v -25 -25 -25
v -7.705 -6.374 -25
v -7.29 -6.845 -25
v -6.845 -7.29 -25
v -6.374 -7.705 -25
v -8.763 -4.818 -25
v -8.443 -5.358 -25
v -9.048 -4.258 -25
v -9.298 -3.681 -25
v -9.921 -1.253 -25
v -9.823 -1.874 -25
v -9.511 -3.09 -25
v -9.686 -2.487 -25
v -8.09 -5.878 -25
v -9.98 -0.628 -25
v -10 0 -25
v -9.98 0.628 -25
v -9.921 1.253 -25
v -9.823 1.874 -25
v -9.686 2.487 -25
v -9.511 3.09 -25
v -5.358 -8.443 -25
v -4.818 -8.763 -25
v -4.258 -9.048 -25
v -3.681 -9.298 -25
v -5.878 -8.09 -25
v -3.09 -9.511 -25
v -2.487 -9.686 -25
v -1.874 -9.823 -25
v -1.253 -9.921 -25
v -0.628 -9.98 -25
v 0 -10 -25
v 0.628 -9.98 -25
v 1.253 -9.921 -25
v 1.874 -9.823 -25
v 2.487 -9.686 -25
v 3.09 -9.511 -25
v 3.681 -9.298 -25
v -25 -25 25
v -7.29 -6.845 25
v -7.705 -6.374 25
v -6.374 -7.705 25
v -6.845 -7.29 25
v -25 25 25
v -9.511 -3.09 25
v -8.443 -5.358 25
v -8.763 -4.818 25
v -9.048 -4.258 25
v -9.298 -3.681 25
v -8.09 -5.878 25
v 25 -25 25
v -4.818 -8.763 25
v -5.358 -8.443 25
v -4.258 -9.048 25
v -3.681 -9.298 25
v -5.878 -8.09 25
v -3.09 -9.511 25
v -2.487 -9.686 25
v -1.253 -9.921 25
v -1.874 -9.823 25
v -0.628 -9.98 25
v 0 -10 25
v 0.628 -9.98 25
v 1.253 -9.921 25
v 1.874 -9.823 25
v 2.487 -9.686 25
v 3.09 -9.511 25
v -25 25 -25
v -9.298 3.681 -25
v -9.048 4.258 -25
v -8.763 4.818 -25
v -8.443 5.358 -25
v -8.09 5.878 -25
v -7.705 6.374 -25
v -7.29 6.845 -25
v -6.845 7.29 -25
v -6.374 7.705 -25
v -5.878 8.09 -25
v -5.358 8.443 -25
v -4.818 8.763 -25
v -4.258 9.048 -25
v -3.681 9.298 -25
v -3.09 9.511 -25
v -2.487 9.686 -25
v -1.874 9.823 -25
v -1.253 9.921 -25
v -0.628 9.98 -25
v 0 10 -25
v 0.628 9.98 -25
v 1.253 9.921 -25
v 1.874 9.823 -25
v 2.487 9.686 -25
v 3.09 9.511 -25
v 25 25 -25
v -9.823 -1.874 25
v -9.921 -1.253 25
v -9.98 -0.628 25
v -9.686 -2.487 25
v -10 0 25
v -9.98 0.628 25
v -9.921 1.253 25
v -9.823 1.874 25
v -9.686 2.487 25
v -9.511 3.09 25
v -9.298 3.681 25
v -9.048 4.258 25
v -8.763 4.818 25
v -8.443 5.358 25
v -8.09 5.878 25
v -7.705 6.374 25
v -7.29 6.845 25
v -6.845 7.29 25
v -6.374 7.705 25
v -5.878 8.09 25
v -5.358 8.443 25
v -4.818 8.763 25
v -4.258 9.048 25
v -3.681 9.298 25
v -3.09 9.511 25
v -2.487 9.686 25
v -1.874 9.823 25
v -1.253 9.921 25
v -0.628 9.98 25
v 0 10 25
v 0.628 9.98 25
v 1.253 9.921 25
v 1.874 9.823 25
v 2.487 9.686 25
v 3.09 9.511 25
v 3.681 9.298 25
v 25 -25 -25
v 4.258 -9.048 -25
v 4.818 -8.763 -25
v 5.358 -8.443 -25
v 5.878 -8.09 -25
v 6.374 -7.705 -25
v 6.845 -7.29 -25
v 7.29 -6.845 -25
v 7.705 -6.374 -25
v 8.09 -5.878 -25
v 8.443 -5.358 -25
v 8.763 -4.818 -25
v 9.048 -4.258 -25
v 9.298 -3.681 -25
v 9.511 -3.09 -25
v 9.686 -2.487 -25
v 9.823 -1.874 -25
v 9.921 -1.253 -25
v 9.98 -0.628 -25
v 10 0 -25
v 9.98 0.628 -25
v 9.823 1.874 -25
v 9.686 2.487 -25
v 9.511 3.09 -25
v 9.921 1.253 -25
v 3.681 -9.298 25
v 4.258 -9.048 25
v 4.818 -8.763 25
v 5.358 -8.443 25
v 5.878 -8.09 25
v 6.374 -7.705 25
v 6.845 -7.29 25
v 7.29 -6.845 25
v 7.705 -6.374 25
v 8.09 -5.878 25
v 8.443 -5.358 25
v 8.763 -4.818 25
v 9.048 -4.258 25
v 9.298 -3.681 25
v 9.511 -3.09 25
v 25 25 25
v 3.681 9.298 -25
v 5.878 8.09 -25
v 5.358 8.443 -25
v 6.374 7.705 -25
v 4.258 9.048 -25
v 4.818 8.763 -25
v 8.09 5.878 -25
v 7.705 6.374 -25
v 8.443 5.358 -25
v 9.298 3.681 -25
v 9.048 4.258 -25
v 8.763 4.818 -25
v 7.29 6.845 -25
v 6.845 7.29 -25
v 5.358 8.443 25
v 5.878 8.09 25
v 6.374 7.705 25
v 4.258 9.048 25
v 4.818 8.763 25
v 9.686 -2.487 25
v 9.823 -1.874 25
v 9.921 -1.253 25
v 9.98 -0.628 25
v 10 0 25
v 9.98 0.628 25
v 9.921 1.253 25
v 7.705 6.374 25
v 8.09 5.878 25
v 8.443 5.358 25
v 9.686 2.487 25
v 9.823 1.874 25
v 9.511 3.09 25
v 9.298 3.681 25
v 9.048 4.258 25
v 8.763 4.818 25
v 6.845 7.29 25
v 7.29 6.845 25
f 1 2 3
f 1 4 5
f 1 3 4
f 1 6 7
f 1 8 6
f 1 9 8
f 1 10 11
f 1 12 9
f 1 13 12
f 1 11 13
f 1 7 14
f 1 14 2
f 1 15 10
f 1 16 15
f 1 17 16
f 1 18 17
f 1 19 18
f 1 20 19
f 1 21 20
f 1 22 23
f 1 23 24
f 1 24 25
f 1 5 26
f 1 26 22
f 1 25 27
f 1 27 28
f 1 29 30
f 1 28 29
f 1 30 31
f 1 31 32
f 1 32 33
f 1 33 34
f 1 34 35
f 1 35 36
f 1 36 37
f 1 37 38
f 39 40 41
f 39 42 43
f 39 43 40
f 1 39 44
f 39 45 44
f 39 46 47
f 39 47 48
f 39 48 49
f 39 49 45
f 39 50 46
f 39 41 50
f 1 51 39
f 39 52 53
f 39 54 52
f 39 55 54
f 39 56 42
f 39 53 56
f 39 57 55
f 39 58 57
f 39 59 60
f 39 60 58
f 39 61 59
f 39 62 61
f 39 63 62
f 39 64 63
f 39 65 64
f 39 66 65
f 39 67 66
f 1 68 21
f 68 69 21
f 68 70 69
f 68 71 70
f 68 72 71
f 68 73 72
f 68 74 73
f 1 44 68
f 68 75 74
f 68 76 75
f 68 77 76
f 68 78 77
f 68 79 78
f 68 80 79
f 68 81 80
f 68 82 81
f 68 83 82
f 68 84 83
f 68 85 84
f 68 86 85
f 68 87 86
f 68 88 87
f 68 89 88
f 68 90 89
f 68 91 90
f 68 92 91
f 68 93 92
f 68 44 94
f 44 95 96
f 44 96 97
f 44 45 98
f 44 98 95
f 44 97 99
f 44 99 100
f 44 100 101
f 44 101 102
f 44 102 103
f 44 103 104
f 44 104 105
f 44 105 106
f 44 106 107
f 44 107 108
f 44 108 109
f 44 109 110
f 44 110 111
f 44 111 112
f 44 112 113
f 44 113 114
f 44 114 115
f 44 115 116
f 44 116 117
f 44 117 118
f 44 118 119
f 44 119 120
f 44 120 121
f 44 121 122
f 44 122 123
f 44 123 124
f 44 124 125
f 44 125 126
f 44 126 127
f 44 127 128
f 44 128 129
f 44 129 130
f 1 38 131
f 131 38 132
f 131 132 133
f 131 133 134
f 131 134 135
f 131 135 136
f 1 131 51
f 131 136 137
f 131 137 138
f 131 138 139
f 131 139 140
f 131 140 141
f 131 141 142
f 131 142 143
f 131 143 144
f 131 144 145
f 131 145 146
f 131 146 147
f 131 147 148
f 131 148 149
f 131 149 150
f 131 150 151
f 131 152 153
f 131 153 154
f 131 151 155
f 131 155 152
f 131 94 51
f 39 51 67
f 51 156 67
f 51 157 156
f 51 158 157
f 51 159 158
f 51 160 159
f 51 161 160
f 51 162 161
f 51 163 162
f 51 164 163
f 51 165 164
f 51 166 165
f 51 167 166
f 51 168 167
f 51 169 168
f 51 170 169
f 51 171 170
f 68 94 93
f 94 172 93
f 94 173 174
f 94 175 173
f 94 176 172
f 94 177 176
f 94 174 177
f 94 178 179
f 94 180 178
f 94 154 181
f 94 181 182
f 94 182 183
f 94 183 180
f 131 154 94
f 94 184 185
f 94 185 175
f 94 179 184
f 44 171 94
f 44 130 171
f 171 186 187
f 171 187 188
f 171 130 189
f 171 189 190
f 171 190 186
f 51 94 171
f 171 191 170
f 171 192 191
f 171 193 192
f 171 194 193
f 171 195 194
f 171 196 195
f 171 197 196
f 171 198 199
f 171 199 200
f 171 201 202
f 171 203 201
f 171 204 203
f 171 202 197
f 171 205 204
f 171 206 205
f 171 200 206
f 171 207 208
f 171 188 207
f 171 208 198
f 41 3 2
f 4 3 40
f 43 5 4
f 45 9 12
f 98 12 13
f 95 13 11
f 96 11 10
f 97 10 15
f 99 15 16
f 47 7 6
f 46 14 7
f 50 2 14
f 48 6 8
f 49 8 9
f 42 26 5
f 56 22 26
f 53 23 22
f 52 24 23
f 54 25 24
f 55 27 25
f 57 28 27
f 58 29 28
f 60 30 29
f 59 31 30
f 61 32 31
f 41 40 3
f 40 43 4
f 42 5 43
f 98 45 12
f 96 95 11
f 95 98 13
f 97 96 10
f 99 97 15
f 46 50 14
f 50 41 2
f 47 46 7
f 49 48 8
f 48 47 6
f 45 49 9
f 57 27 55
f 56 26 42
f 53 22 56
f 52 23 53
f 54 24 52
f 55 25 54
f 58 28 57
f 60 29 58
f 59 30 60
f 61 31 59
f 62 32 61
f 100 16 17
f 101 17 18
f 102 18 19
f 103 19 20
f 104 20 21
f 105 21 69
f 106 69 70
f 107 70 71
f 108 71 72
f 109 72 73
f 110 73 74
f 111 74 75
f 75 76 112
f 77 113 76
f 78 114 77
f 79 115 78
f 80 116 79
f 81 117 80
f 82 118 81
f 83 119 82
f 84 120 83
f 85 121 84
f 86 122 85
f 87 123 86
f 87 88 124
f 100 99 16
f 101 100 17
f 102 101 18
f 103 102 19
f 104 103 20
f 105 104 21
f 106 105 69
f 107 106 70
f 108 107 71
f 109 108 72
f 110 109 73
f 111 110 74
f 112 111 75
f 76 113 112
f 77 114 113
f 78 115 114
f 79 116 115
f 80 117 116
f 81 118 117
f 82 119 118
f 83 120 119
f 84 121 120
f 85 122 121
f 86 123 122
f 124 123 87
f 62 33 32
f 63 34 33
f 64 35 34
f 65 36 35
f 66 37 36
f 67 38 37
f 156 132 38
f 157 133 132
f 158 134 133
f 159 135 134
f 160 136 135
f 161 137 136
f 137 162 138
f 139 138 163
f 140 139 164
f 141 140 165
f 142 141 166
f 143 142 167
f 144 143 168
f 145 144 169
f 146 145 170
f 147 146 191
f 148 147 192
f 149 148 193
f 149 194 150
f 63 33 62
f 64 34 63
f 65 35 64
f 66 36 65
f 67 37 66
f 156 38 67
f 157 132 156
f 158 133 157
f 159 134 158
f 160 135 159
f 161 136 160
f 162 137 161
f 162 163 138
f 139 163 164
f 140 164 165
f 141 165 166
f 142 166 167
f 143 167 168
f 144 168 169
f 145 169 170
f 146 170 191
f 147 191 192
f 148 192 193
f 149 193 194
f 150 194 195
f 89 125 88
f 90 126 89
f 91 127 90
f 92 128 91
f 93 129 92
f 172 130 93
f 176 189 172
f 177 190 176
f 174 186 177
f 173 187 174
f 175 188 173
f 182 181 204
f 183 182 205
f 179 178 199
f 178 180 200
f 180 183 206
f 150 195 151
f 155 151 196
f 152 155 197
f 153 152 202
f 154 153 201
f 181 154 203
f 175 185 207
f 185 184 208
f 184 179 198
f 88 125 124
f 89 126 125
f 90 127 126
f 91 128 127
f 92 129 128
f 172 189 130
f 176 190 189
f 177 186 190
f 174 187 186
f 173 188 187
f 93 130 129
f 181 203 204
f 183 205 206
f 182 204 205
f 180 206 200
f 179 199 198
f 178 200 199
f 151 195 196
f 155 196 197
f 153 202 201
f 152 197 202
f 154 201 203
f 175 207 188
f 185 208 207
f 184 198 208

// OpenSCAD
// 50mm角の立方体に、直径20mmのZ軸方向貫通穴を開けたモデル

$fn = 100;

difference() {
    // 50mm角の立方体（原点中心）
    cube([50, 50, 50], center = true);

    // 中央を貫通する直径20mmの穴（Z軸方向）
    cylinder(h = 60, d = 20, center = true);
}
